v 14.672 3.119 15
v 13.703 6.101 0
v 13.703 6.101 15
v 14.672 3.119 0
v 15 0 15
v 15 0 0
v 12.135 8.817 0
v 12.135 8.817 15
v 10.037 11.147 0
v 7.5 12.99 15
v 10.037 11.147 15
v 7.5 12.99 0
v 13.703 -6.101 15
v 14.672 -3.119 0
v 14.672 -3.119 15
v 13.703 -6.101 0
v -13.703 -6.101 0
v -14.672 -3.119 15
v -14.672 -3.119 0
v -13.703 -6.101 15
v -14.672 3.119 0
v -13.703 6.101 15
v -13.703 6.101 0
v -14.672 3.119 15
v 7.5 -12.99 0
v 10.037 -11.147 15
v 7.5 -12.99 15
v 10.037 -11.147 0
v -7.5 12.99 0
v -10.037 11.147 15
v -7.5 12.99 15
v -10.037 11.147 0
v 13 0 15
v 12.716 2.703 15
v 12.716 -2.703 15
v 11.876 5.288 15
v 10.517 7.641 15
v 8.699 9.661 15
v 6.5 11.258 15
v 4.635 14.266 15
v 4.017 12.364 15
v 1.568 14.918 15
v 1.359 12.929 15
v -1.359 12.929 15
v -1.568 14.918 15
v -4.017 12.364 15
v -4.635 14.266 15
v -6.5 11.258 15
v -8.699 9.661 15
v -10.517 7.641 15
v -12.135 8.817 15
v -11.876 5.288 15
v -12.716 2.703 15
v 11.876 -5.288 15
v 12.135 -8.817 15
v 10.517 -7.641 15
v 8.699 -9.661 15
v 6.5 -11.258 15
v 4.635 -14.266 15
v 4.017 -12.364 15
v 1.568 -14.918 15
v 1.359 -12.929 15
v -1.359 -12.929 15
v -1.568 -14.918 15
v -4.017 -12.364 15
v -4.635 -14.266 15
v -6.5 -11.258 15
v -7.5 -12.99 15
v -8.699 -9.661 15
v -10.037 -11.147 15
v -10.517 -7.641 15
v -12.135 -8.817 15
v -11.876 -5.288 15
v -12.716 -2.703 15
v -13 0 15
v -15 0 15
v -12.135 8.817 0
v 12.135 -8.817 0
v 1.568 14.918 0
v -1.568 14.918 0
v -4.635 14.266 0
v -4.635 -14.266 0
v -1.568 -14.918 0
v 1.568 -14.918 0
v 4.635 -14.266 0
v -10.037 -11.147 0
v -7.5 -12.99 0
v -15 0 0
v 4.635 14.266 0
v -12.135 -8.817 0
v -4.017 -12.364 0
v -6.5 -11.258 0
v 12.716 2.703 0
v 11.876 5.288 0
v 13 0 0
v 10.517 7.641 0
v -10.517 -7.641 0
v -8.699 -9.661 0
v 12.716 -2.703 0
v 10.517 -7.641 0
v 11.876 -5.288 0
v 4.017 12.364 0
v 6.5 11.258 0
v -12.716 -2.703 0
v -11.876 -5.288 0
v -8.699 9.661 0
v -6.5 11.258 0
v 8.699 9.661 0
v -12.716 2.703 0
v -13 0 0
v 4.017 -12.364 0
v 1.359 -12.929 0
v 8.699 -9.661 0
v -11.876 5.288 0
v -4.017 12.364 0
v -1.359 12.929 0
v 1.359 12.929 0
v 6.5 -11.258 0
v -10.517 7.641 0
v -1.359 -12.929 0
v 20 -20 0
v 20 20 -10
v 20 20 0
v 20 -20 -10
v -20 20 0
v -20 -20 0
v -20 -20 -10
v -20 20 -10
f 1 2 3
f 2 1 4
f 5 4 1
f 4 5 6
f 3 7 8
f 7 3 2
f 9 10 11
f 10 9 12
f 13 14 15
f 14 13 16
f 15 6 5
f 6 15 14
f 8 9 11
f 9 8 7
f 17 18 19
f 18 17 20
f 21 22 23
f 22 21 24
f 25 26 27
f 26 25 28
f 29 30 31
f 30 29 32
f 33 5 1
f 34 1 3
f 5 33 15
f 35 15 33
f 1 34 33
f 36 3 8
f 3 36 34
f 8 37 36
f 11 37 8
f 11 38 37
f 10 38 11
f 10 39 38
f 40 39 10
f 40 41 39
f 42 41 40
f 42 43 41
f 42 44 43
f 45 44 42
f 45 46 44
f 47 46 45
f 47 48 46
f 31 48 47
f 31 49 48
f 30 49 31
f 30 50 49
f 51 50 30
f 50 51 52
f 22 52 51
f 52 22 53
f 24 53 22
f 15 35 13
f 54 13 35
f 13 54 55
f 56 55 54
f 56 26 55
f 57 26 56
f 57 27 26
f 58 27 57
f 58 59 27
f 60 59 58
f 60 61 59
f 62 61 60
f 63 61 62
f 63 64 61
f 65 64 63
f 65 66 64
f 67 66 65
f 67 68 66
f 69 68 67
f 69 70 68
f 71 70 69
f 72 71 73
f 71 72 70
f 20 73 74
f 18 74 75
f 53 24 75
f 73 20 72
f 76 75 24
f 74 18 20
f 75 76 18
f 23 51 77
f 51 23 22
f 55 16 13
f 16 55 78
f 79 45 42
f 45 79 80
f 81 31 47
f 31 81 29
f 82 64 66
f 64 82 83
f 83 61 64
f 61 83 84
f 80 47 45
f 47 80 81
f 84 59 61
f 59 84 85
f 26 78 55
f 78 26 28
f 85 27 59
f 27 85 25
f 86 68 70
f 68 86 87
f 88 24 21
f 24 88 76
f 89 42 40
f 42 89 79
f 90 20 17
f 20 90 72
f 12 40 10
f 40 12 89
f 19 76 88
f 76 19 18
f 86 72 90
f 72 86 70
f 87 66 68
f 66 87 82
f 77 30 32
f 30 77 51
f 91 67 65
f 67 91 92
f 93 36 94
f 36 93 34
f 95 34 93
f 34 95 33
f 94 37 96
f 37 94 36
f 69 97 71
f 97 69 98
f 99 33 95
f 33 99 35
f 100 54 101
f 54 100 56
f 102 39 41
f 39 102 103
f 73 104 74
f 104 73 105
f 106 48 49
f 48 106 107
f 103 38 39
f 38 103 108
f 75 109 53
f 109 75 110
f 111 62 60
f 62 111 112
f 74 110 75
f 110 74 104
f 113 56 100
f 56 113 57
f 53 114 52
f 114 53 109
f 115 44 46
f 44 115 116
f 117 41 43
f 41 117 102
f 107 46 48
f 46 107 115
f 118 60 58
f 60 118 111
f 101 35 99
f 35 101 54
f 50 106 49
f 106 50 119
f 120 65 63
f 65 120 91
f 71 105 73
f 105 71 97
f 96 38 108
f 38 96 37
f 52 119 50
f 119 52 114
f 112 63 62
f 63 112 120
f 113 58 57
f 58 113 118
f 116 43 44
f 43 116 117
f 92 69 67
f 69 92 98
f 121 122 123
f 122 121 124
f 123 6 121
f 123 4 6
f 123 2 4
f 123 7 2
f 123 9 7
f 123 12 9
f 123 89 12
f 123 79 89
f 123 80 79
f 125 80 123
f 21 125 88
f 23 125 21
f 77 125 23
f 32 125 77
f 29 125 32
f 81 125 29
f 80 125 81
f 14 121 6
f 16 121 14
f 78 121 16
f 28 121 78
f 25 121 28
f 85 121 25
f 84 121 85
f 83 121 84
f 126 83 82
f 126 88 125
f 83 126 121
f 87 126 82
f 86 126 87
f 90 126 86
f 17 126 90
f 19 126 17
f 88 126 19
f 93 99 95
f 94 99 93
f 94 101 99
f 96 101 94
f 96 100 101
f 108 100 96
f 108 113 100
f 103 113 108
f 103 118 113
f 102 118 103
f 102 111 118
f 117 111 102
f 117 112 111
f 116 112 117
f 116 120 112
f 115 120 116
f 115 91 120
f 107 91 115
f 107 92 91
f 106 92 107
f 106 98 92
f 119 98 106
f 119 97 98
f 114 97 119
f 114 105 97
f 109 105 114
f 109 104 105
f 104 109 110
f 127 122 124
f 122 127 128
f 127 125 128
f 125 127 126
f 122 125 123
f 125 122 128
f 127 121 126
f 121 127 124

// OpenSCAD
// Parameters for the base block
base_length = 40;  // Length of the rectangular base
base_width = 40;   // Width of the rectangular base
base_height = 10;  // Height of the rectangular base

// Parameters for the cylindrical extension
cylinder_diameter = 30;  // Diameter of the cylinder
cylinder_height = 20;    // Height of the cylinder
cylinder_wall_thickness = 2;  // Thickness of the cylinder wall

// Base block
module base_block() {
    cube([base_length, base_width, base_height], center = true);
}

// Cylindrical extension
module cylindrical_extension() {
    difference() {
        // Outer cylinder
        cylinder(h = cylinder_height, d = cylinder_diameter, center = true);
        // Inner hollow cylinder
        cylinder(h = cylinder_height, d = cylinder_diameter - 2 * cylinder_wall_thickness, center = true);
    }
}

// Full model
module flexible_coupling() {
    // Base block
    translate([0, 0, -base_height / 2])
        base_block();
    // Cylindrical extension
    translate([0, 0, base_height / 2])
        cylindrical_extension();
}

// Render the model
flexible_coupling();
